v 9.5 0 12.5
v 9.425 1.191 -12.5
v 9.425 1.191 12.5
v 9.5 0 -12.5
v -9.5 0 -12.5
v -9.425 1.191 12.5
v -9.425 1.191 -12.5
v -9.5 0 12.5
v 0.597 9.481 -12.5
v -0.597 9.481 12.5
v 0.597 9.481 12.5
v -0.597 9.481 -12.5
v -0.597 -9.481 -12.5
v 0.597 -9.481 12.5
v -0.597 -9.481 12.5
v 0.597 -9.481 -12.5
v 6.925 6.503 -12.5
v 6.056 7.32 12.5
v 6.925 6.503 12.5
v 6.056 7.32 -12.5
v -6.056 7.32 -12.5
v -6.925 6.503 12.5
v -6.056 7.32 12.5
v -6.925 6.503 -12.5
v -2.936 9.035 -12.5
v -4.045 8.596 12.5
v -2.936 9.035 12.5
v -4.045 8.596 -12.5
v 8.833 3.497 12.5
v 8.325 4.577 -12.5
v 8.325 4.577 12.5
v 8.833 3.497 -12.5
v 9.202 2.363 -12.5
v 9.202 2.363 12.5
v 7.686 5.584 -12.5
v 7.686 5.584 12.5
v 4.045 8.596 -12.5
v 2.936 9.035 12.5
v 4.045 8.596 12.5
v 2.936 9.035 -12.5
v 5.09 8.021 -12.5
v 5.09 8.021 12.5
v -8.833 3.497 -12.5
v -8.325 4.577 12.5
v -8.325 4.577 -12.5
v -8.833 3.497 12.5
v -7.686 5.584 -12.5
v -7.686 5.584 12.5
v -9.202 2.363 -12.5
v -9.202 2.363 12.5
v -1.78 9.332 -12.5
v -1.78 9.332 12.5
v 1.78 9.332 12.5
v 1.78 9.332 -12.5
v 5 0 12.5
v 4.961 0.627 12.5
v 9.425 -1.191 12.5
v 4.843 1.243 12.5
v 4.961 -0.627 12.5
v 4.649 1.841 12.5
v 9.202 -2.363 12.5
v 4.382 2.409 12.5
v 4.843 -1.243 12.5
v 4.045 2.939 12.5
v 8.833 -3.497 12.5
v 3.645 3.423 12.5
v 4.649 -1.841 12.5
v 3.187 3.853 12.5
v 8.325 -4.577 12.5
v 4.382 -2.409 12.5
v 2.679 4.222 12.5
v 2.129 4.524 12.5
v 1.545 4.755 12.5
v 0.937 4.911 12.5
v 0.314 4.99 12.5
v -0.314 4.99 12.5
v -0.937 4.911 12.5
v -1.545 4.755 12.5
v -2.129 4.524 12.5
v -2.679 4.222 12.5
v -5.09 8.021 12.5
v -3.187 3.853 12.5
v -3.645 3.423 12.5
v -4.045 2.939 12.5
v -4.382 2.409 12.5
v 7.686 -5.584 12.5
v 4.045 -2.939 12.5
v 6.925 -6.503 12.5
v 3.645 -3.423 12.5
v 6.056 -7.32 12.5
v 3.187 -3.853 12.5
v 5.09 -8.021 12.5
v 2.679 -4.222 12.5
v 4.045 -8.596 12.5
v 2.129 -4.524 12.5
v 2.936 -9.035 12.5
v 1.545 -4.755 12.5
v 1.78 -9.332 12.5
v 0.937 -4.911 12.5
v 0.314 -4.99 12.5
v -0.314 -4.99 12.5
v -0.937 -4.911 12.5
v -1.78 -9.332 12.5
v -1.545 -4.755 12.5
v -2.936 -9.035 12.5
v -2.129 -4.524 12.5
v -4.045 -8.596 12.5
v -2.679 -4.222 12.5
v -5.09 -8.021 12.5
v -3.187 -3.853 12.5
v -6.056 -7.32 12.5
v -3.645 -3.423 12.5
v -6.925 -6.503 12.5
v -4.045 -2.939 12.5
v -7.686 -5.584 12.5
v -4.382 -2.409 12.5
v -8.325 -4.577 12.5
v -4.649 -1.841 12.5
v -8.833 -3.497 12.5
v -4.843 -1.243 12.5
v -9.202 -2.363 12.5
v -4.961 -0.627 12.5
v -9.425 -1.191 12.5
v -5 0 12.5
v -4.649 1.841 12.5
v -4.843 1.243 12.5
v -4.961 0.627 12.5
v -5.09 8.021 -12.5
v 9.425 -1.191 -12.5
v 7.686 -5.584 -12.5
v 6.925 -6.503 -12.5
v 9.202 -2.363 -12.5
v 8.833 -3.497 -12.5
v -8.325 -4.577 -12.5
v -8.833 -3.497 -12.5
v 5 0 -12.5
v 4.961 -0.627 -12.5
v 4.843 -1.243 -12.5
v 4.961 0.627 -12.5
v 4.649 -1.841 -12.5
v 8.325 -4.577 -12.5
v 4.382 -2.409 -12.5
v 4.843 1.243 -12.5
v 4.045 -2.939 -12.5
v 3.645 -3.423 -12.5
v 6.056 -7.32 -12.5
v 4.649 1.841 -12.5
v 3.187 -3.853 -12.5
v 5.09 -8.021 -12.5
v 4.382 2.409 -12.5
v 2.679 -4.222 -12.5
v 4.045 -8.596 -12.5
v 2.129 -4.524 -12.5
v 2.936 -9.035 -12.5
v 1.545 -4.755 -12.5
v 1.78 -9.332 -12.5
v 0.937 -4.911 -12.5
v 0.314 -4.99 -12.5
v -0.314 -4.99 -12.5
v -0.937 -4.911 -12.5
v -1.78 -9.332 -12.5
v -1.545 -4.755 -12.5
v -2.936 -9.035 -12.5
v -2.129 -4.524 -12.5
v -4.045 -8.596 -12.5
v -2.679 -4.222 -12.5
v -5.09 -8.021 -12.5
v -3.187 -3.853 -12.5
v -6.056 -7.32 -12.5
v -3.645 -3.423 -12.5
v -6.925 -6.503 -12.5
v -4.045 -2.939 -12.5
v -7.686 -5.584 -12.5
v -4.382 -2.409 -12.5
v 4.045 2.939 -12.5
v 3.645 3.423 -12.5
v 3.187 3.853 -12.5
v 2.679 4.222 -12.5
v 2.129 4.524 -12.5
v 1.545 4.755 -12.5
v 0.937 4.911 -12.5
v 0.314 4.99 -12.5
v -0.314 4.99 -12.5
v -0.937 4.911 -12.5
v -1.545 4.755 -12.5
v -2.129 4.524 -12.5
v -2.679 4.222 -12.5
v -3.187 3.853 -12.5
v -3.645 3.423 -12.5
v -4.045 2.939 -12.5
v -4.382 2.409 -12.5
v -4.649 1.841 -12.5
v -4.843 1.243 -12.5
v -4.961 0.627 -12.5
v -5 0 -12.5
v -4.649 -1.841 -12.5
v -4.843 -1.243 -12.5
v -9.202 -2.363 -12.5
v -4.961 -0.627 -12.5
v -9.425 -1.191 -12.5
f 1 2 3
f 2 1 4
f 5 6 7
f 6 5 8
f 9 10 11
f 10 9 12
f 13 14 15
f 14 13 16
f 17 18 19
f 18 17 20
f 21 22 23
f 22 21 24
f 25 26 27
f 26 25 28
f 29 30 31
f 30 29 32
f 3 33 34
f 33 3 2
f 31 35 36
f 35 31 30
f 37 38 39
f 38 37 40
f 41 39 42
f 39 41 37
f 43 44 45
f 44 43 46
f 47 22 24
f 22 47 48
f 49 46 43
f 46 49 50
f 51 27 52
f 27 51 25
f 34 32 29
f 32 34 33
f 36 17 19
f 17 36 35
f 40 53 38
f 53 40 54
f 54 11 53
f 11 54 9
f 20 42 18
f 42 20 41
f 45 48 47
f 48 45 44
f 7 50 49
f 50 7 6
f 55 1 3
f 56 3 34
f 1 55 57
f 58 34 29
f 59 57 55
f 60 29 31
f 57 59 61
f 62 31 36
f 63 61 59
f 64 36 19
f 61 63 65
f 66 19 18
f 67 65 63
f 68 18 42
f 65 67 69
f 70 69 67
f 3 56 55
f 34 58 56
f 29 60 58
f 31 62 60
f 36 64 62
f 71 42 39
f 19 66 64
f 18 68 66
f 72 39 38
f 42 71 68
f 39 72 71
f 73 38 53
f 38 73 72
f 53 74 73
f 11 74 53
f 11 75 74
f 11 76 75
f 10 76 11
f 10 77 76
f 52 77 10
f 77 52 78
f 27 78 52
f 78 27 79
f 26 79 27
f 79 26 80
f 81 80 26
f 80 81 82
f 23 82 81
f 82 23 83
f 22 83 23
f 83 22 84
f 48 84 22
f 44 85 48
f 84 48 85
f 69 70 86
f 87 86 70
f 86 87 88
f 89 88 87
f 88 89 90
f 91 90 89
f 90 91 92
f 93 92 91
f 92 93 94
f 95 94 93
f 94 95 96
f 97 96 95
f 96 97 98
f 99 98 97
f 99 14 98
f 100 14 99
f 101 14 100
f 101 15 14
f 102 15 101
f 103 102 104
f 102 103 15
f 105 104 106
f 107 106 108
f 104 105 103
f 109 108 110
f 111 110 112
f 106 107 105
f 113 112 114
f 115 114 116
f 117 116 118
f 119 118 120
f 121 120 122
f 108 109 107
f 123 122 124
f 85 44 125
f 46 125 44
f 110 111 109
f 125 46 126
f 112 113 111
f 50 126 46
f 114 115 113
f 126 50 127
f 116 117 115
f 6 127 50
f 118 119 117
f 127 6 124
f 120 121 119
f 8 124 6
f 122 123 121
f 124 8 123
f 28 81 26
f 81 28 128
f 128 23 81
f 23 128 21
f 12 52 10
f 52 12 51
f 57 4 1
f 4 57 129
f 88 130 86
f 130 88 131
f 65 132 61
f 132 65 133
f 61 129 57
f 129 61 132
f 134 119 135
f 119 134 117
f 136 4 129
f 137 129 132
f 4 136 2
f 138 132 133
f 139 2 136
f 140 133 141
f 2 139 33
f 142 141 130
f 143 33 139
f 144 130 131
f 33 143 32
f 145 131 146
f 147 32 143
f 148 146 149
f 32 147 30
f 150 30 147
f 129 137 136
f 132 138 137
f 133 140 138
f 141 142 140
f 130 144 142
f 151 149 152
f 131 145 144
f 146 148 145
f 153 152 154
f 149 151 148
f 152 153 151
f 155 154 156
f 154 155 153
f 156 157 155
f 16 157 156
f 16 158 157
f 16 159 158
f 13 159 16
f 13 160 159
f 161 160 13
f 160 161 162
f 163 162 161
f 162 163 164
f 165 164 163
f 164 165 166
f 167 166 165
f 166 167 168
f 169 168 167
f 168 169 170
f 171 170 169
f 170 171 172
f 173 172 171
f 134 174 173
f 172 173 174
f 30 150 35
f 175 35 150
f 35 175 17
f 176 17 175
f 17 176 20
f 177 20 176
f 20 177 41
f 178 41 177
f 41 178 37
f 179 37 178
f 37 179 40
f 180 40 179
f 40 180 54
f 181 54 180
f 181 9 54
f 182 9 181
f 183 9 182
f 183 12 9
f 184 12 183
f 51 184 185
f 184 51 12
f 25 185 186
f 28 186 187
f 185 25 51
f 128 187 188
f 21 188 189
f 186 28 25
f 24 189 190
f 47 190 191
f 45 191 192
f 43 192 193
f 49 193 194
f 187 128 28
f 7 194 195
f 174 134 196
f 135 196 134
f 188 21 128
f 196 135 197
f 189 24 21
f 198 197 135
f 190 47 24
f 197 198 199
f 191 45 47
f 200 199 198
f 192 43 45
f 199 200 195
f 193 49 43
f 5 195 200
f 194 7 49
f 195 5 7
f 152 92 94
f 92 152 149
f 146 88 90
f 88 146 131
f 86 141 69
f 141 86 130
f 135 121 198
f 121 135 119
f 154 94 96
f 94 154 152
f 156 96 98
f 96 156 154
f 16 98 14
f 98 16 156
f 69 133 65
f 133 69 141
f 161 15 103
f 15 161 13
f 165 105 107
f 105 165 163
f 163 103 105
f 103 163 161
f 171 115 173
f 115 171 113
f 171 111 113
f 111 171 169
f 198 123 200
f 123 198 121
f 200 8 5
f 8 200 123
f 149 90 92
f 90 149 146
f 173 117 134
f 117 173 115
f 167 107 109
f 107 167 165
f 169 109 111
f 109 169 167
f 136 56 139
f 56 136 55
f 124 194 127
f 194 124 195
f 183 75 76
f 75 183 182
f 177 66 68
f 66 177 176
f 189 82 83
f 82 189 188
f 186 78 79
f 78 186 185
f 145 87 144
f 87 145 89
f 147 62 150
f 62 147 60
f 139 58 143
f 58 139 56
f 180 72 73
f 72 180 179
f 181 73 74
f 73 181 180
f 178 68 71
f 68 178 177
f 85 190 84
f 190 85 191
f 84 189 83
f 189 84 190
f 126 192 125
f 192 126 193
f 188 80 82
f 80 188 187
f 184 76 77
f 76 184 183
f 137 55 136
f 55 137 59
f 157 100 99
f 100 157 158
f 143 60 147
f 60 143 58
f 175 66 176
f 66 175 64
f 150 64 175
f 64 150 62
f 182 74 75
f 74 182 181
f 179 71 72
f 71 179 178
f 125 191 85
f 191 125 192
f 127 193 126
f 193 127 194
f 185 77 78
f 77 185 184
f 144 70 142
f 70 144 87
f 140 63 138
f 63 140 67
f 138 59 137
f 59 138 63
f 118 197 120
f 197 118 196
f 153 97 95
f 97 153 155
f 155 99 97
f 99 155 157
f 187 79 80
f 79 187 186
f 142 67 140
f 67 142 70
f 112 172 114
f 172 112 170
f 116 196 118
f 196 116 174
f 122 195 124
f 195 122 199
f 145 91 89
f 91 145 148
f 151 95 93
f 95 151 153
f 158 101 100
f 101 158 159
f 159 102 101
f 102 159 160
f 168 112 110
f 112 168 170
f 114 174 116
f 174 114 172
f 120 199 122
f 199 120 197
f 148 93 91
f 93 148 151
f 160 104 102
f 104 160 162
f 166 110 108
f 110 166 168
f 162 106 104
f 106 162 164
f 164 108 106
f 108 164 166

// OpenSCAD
$fn = 50;


difference() {
	union() {
		translate(v = [0, 0, -12.5000000000]) {
			cylinder(h = 25, r = 9.5000000000);
		}
	}
	union() {
		translate(v = [0, 0, -100.0000000000]) {
			cylinder(h = 200, r = 5.0000000000);
		}
	}
}
